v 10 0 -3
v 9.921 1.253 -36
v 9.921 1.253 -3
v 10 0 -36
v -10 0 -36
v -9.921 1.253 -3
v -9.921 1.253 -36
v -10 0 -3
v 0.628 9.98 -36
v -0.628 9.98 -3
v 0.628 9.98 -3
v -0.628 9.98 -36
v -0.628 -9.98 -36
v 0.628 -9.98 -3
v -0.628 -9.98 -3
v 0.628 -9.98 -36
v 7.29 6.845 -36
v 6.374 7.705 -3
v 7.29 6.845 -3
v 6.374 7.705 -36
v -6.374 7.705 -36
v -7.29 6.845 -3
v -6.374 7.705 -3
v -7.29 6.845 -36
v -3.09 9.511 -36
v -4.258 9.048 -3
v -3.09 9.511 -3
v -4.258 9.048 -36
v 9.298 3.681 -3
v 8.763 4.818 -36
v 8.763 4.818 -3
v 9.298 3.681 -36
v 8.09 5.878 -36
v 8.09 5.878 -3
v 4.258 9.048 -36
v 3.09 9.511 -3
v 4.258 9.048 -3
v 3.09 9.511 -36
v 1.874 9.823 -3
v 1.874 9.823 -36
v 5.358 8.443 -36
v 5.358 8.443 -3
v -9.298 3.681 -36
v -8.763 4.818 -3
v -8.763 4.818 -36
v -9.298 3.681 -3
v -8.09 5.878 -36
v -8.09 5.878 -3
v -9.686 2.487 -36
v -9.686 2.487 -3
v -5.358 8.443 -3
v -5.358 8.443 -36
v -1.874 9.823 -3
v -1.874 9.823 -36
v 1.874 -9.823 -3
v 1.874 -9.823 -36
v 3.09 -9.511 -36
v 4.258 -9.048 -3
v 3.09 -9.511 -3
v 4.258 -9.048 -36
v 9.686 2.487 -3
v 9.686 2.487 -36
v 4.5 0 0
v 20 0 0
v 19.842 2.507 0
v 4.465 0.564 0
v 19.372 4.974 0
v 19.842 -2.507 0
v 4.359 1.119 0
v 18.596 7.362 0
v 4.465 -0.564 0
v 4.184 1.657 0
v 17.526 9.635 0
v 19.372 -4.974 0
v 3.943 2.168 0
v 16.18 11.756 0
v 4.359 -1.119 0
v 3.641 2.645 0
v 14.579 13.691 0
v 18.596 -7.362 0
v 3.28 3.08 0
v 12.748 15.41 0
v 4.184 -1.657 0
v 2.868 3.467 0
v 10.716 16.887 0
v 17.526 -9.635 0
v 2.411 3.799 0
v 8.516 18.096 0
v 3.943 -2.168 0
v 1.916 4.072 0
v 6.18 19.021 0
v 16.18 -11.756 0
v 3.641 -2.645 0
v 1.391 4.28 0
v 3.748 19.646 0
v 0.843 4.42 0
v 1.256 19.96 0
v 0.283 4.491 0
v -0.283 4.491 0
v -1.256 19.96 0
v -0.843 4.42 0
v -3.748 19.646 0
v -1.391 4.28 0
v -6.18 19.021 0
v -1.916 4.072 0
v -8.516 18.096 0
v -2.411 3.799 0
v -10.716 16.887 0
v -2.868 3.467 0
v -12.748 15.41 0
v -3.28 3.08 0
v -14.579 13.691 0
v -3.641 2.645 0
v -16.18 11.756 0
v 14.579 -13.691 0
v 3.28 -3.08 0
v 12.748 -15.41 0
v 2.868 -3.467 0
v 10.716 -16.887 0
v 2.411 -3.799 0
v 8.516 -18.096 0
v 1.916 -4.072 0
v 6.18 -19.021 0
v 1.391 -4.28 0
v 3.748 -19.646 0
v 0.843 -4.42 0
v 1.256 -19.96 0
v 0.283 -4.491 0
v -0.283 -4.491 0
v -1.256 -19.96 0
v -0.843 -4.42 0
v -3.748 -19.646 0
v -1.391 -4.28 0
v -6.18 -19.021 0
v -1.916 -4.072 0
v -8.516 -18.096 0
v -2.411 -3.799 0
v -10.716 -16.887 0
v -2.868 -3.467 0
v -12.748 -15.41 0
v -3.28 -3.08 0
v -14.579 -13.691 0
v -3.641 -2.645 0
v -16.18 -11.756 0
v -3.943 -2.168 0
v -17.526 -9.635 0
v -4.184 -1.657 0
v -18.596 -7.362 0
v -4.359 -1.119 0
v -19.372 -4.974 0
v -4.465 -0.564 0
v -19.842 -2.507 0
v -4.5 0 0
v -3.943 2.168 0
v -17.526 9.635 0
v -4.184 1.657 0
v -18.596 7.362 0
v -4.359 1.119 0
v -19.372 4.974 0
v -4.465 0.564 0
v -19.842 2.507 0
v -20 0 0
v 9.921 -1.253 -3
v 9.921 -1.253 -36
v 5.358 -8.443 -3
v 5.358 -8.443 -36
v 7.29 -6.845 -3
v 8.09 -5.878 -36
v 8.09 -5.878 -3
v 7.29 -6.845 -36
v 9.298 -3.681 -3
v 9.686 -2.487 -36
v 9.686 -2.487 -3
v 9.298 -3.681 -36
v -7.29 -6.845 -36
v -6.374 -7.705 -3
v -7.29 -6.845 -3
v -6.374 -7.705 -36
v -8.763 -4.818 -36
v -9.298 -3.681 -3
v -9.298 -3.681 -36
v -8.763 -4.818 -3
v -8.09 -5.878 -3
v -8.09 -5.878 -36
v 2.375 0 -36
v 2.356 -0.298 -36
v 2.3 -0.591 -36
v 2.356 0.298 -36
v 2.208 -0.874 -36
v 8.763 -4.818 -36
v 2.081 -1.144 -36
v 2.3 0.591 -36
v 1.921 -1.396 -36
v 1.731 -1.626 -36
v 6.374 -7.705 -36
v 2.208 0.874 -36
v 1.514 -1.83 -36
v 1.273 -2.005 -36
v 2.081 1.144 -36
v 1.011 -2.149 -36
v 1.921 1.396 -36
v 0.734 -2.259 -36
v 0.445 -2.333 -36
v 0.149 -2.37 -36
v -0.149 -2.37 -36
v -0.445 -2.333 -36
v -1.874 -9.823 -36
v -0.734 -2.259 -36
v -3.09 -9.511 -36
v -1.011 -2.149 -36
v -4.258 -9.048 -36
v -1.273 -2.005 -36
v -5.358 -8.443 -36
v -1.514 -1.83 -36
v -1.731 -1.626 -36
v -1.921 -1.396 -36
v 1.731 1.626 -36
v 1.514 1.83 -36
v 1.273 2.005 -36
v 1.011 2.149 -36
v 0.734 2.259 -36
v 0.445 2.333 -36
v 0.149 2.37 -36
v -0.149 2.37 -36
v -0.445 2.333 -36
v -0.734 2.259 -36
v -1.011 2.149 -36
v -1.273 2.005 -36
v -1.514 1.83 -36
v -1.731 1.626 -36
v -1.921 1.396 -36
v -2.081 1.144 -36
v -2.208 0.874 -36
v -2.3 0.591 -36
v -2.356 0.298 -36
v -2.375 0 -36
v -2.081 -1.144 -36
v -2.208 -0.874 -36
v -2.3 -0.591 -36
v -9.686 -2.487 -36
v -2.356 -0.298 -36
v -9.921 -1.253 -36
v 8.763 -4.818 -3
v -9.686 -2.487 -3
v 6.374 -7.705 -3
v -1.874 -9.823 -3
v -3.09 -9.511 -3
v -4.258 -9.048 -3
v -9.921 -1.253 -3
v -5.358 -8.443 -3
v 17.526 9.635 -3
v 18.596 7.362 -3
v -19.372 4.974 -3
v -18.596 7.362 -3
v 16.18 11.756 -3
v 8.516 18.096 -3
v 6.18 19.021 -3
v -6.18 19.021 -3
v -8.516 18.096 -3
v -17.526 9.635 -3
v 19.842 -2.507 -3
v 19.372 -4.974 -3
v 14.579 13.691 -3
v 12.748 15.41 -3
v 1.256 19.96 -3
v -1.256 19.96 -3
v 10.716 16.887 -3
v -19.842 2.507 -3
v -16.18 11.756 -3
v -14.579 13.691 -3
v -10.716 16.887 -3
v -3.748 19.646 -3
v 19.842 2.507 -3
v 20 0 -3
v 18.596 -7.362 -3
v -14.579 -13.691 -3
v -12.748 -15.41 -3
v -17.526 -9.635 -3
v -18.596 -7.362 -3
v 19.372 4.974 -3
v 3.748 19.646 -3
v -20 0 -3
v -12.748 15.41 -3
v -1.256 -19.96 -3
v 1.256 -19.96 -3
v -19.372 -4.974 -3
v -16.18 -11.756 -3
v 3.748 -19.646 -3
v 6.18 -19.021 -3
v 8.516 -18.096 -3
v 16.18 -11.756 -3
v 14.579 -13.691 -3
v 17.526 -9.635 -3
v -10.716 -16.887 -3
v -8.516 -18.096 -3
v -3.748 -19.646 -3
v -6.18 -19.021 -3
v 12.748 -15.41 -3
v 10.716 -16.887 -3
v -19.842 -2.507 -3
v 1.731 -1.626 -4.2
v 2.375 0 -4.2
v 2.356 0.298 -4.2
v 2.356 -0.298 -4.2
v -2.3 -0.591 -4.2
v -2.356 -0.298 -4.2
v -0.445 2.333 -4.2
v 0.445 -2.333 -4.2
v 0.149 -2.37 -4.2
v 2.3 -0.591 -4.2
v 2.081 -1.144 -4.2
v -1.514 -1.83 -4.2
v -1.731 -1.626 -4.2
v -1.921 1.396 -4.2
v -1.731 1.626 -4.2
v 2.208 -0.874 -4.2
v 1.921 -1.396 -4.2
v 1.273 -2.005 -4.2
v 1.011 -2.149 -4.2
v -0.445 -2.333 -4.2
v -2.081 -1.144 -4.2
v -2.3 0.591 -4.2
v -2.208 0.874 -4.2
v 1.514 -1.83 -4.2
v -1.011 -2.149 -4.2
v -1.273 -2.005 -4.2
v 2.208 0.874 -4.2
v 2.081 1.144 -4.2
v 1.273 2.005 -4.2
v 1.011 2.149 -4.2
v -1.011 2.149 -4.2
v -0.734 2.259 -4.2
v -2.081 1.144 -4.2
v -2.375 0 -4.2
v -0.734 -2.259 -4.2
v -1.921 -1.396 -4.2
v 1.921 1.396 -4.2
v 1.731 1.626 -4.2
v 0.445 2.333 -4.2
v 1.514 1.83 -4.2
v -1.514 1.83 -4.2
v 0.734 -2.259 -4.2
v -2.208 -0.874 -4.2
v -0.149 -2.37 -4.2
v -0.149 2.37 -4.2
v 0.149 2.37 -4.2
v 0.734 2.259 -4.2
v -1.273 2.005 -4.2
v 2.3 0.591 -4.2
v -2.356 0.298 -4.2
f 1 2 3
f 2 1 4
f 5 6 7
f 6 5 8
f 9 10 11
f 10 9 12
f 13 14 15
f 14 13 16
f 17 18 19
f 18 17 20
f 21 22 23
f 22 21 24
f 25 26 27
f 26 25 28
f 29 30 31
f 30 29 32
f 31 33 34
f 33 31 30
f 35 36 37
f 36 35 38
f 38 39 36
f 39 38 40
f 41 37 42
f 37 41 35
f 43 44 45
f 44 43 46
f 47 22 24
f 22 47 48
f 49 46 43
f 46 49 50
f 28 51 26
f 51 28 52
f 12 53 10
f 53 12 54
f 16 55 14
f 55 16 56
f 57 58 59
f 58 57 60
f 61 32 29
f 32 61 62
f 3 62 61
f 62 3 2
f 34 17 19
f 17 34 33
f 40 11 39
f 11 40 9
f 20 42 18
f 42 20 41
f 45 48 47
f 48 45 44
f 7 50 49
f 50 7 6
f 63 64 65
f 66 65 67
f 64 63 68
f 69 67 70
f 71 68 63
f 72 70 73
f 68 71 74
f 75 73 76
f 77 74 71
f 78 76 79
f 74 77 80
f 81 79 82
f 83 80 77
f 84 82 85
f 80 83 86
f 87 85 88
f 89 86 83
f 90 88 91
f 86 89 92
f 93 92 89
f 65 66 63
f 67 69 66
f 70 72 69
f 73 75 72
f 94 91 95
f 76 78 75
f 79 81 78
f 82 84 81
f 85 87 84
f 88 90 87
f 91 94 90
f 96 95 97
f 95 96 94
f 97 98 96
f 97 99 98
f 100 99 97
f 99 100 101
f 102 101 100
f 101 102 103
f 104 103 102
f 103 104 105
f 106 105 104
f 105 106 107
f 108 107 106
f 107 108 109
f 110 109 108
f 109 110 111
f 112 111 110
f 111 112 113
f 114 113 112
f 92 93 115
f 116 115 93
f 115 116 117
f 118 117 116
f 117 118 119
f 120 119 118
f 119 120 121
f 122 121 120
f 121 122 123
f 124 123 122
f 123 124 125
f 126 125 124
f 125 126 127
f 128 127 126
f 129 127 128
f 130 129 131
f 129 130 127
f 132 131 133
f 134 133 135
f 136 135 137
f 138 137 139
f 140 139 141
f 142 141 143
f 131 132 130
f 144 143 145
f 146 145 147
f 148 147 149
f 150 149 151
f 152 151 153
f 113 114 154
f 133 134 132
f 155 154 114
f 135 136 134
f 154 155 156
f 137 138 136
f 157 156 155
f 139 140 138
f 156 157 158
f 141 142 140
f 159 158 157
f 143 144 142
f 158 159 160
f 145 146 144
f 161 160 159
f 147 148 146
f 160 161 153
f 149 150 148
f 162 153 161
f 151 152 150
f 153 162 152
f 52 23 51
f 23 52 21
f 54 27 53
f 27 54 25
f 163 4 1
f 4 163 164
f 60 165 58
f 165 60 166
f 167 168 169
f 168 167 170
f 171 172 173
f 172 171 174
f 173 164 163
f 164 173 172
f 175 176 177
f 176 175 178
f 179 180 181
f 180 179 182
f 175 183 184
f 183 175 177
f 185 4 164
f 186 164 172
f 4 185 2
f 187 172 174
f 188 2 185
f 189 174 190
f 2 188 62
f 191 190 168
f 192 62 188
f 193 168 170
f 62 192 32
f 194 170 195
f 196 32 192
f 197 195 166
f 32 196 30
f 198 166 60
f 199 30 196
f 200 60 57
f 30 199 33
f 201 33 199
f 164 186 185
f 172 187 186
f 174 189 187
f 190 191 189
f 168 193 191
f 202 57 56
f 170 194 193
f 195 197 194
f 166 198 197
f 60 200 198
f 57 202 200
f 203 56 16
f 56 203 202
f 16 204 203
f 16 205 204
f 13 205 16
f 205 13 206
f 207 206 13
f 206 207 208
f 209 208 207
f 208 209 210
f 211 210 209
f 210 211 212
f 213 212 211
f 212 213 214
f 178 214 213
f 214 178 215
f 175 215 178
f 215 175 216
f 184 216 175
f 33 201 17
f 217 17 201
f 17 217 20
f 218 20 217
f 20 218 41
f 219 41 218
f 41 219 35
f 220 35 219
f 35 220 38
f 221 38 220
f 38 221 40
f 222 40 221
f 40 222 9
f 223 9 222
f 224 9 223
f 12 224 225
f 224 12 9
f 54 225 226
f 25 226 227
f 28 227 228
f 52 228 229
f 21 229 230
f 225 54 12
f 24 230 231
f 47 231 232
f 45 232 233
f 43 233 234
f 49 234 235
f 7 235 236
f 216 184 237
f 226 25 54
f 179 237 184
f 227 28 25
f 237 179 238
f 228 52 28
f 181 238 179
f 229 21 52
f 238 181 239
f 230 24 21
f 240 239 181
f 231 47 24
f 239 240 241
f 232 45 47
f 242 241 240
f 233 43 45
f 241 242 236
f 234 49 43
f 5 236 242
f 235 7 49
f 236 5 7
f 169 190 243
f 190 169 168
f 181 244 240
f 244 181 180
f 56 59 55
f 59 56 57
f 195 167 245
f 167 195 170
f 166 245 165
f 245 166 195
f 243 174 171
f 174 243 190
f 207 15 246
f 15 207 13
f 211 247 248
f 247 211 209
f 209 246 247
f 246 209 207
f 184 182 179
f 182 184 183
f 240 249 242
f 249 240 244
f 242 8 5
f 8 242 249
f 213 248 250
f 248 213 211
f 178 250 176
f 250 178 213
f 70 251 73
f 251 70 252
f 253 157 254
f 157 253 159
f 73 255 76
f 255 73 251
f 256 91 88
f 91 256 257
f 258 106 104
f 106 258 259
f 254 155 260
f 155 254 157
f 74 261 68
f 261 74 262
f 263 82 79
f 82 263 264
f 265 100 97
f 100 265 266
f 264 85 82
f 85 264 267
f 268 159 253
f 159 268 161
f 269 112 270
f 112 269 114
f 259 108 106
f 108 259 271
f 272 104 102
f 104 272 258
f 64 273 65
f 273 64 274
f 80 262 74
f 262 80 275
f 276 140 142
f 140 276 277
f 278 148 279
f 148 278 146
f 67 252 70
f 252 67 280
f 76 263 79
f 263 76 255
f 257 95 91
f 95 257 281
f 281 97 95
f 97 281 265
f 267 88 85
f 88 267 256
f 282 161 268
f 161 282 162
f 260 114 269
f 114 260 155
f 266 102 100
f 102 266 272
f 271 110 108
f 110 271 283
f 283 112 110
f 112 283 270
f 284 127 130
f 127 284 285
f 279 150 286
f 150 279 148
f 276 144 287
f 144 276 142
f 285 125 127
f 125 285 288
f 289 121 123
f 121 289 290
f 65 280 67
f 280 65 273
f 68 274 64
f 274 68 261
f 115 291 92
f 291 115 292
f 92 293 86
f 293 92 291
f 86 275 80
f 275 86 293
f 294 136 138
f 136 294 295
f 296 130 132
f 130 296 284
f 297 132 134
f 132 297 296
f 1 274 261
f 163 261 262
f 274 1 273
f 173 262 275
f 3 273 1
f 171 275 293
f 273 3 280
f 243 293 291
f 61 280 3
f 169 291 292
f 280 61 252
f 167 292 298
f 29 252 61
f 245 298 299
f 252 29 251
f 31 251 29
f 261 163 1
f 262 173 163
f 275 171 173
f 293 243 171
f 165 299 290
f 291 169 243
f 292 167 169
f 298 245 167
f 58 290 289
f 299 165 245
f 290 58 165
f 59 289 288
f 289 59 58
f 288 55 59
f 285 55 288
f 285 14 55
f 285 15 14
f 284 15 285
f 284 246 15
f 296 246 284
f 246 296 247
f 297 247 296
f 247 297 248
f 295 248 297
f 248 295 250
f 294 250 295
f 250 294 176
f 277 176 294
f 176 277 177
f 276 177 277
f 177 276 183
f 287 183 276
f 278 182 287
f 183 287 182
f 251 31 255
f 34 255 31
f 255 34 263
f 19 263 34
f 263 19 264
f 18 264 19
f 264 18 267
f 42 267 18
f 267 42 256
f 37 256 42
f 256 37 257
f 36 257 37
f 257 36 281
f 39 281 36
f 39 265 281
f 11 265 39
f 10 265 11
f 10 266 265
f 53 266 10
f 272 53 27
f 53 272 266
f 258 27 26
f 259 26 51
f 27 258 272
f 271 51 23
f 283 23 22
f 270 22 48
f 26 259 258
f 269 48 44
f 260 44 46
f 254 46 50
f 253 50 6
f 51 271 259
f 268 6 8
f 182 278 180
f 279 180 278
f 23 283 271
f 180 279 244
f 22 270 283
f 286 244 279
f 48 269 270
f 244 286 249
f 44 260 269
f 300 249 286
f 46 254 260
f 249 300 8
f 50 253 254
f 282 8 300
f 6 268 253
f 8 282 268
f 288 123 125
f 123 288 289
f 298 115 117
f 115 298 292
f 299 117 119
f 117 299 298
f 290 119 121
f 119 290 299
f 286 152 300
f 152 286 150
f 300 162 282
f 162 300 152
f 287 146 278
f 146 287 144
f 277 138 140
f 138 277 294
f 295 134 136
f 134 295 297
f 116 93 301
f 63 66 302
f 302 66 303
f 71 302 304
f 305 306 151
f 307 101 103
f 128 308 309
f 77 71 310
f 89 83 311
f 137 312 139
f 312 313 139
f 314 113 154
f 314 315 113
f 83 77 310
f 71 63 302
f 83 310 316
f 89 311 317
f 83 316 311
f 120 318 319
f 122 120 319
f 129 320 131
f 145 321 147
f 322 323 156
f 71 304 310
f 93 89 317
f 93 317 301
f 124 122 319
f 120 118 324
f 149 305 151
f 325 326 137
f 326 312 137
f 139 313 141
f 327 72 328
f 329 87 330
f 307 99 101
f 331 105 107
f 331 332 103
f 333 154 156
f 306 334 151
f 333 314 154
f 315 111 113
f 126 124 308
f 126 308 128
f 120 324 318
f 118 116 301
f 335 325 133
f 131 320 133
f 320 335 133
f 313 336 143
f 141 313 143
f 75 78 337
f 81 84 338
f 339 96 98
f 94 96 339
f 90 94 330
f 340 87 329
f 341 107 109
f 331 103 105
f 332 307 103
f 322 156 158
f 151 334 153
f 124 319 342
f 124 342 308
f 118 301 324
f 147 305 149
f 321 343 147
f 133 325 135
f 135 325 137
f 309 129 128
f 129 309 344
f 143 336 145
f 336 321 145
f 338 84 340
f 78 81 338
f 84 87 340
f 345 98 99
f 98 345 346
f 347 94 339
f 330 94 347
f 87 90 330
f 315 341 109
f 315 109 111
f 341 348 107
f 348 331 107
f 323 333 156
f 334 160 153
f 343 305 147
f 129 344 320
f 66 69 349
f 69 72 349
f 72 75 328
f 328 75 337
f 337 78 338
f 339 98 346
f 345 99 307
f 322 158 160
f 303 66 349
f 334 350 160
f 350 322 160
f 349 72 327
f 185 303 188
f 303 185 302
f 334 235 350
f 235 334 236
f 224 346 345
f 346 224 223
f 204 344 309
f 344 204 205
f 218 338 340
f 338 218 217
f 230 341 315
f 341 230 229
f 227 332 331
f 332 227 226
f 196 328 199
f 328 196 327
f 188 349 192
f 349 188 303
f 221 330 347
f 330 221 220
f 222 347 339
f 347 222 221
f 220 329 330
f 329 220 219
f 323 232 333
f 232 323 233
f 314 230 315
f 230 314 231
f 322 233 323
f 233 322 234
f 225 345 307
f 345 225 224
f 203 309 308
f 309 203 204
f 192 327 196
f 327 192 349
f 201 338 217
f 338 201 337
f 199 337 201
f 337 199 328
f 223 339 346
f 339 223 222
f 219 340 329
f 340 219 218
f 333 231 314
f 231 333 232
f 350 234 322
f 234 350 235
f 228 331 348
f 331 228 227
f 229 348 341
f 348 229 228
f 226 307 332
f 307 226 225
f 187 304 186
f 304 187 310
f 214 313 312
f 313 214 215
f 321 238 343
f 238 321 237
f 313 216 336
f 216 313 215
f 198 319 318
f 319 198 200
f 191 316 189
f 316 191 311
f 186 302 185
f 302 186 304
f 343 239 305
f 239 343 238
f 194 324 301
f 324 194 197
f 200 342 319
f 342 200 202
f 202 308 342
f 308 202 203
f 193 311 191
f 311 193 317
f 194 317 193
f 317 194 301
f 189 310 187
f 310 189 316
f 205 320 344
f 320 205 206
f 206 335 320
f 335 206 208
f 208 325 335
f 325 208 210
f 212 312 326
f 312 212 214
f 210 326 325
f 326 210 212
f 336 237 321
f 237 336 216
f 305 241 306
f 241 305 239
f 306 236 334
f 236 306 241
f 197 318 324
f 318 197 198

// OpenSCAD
$fn = 50;


difference() {
	union() {
		translate(v = [0, 0, -36.0000000000]) {
			cylinder(h = 36, r = 10.0000000000);
		}
		translate(v = [0, 0, -3.0000000000]) {
			cylinder(h = 3, r = 20.0000000000);
		}
	}
	union() {
		translate(v = [0, 0, 0]) {
			rotate(a = [0, 0, 0]) {
				difference() {
					union() {
						#translate(v = [0, 0, -36.0000000000]) {
							cylinder(h = 36, r = 2.2500000000);
						}
						#translate(v = [0, 0, -4.2000000000]) {
							cylinder(h = 4.2000000000, r = 10.0000000000, r1 = 2.3750000000, r2 = 4.5000000000);
						}
						#translate(v = [0, 0, -36.0000000000]) {
							cylinder(h = 36, r = 2.3750000000);
						}
						#translate(v = [0, 0, -36.0000000000]) {
							cylinder(h = 36, r = 2.2500000000);
						}
					}
					union();
				}
			}
		}
	}
}
